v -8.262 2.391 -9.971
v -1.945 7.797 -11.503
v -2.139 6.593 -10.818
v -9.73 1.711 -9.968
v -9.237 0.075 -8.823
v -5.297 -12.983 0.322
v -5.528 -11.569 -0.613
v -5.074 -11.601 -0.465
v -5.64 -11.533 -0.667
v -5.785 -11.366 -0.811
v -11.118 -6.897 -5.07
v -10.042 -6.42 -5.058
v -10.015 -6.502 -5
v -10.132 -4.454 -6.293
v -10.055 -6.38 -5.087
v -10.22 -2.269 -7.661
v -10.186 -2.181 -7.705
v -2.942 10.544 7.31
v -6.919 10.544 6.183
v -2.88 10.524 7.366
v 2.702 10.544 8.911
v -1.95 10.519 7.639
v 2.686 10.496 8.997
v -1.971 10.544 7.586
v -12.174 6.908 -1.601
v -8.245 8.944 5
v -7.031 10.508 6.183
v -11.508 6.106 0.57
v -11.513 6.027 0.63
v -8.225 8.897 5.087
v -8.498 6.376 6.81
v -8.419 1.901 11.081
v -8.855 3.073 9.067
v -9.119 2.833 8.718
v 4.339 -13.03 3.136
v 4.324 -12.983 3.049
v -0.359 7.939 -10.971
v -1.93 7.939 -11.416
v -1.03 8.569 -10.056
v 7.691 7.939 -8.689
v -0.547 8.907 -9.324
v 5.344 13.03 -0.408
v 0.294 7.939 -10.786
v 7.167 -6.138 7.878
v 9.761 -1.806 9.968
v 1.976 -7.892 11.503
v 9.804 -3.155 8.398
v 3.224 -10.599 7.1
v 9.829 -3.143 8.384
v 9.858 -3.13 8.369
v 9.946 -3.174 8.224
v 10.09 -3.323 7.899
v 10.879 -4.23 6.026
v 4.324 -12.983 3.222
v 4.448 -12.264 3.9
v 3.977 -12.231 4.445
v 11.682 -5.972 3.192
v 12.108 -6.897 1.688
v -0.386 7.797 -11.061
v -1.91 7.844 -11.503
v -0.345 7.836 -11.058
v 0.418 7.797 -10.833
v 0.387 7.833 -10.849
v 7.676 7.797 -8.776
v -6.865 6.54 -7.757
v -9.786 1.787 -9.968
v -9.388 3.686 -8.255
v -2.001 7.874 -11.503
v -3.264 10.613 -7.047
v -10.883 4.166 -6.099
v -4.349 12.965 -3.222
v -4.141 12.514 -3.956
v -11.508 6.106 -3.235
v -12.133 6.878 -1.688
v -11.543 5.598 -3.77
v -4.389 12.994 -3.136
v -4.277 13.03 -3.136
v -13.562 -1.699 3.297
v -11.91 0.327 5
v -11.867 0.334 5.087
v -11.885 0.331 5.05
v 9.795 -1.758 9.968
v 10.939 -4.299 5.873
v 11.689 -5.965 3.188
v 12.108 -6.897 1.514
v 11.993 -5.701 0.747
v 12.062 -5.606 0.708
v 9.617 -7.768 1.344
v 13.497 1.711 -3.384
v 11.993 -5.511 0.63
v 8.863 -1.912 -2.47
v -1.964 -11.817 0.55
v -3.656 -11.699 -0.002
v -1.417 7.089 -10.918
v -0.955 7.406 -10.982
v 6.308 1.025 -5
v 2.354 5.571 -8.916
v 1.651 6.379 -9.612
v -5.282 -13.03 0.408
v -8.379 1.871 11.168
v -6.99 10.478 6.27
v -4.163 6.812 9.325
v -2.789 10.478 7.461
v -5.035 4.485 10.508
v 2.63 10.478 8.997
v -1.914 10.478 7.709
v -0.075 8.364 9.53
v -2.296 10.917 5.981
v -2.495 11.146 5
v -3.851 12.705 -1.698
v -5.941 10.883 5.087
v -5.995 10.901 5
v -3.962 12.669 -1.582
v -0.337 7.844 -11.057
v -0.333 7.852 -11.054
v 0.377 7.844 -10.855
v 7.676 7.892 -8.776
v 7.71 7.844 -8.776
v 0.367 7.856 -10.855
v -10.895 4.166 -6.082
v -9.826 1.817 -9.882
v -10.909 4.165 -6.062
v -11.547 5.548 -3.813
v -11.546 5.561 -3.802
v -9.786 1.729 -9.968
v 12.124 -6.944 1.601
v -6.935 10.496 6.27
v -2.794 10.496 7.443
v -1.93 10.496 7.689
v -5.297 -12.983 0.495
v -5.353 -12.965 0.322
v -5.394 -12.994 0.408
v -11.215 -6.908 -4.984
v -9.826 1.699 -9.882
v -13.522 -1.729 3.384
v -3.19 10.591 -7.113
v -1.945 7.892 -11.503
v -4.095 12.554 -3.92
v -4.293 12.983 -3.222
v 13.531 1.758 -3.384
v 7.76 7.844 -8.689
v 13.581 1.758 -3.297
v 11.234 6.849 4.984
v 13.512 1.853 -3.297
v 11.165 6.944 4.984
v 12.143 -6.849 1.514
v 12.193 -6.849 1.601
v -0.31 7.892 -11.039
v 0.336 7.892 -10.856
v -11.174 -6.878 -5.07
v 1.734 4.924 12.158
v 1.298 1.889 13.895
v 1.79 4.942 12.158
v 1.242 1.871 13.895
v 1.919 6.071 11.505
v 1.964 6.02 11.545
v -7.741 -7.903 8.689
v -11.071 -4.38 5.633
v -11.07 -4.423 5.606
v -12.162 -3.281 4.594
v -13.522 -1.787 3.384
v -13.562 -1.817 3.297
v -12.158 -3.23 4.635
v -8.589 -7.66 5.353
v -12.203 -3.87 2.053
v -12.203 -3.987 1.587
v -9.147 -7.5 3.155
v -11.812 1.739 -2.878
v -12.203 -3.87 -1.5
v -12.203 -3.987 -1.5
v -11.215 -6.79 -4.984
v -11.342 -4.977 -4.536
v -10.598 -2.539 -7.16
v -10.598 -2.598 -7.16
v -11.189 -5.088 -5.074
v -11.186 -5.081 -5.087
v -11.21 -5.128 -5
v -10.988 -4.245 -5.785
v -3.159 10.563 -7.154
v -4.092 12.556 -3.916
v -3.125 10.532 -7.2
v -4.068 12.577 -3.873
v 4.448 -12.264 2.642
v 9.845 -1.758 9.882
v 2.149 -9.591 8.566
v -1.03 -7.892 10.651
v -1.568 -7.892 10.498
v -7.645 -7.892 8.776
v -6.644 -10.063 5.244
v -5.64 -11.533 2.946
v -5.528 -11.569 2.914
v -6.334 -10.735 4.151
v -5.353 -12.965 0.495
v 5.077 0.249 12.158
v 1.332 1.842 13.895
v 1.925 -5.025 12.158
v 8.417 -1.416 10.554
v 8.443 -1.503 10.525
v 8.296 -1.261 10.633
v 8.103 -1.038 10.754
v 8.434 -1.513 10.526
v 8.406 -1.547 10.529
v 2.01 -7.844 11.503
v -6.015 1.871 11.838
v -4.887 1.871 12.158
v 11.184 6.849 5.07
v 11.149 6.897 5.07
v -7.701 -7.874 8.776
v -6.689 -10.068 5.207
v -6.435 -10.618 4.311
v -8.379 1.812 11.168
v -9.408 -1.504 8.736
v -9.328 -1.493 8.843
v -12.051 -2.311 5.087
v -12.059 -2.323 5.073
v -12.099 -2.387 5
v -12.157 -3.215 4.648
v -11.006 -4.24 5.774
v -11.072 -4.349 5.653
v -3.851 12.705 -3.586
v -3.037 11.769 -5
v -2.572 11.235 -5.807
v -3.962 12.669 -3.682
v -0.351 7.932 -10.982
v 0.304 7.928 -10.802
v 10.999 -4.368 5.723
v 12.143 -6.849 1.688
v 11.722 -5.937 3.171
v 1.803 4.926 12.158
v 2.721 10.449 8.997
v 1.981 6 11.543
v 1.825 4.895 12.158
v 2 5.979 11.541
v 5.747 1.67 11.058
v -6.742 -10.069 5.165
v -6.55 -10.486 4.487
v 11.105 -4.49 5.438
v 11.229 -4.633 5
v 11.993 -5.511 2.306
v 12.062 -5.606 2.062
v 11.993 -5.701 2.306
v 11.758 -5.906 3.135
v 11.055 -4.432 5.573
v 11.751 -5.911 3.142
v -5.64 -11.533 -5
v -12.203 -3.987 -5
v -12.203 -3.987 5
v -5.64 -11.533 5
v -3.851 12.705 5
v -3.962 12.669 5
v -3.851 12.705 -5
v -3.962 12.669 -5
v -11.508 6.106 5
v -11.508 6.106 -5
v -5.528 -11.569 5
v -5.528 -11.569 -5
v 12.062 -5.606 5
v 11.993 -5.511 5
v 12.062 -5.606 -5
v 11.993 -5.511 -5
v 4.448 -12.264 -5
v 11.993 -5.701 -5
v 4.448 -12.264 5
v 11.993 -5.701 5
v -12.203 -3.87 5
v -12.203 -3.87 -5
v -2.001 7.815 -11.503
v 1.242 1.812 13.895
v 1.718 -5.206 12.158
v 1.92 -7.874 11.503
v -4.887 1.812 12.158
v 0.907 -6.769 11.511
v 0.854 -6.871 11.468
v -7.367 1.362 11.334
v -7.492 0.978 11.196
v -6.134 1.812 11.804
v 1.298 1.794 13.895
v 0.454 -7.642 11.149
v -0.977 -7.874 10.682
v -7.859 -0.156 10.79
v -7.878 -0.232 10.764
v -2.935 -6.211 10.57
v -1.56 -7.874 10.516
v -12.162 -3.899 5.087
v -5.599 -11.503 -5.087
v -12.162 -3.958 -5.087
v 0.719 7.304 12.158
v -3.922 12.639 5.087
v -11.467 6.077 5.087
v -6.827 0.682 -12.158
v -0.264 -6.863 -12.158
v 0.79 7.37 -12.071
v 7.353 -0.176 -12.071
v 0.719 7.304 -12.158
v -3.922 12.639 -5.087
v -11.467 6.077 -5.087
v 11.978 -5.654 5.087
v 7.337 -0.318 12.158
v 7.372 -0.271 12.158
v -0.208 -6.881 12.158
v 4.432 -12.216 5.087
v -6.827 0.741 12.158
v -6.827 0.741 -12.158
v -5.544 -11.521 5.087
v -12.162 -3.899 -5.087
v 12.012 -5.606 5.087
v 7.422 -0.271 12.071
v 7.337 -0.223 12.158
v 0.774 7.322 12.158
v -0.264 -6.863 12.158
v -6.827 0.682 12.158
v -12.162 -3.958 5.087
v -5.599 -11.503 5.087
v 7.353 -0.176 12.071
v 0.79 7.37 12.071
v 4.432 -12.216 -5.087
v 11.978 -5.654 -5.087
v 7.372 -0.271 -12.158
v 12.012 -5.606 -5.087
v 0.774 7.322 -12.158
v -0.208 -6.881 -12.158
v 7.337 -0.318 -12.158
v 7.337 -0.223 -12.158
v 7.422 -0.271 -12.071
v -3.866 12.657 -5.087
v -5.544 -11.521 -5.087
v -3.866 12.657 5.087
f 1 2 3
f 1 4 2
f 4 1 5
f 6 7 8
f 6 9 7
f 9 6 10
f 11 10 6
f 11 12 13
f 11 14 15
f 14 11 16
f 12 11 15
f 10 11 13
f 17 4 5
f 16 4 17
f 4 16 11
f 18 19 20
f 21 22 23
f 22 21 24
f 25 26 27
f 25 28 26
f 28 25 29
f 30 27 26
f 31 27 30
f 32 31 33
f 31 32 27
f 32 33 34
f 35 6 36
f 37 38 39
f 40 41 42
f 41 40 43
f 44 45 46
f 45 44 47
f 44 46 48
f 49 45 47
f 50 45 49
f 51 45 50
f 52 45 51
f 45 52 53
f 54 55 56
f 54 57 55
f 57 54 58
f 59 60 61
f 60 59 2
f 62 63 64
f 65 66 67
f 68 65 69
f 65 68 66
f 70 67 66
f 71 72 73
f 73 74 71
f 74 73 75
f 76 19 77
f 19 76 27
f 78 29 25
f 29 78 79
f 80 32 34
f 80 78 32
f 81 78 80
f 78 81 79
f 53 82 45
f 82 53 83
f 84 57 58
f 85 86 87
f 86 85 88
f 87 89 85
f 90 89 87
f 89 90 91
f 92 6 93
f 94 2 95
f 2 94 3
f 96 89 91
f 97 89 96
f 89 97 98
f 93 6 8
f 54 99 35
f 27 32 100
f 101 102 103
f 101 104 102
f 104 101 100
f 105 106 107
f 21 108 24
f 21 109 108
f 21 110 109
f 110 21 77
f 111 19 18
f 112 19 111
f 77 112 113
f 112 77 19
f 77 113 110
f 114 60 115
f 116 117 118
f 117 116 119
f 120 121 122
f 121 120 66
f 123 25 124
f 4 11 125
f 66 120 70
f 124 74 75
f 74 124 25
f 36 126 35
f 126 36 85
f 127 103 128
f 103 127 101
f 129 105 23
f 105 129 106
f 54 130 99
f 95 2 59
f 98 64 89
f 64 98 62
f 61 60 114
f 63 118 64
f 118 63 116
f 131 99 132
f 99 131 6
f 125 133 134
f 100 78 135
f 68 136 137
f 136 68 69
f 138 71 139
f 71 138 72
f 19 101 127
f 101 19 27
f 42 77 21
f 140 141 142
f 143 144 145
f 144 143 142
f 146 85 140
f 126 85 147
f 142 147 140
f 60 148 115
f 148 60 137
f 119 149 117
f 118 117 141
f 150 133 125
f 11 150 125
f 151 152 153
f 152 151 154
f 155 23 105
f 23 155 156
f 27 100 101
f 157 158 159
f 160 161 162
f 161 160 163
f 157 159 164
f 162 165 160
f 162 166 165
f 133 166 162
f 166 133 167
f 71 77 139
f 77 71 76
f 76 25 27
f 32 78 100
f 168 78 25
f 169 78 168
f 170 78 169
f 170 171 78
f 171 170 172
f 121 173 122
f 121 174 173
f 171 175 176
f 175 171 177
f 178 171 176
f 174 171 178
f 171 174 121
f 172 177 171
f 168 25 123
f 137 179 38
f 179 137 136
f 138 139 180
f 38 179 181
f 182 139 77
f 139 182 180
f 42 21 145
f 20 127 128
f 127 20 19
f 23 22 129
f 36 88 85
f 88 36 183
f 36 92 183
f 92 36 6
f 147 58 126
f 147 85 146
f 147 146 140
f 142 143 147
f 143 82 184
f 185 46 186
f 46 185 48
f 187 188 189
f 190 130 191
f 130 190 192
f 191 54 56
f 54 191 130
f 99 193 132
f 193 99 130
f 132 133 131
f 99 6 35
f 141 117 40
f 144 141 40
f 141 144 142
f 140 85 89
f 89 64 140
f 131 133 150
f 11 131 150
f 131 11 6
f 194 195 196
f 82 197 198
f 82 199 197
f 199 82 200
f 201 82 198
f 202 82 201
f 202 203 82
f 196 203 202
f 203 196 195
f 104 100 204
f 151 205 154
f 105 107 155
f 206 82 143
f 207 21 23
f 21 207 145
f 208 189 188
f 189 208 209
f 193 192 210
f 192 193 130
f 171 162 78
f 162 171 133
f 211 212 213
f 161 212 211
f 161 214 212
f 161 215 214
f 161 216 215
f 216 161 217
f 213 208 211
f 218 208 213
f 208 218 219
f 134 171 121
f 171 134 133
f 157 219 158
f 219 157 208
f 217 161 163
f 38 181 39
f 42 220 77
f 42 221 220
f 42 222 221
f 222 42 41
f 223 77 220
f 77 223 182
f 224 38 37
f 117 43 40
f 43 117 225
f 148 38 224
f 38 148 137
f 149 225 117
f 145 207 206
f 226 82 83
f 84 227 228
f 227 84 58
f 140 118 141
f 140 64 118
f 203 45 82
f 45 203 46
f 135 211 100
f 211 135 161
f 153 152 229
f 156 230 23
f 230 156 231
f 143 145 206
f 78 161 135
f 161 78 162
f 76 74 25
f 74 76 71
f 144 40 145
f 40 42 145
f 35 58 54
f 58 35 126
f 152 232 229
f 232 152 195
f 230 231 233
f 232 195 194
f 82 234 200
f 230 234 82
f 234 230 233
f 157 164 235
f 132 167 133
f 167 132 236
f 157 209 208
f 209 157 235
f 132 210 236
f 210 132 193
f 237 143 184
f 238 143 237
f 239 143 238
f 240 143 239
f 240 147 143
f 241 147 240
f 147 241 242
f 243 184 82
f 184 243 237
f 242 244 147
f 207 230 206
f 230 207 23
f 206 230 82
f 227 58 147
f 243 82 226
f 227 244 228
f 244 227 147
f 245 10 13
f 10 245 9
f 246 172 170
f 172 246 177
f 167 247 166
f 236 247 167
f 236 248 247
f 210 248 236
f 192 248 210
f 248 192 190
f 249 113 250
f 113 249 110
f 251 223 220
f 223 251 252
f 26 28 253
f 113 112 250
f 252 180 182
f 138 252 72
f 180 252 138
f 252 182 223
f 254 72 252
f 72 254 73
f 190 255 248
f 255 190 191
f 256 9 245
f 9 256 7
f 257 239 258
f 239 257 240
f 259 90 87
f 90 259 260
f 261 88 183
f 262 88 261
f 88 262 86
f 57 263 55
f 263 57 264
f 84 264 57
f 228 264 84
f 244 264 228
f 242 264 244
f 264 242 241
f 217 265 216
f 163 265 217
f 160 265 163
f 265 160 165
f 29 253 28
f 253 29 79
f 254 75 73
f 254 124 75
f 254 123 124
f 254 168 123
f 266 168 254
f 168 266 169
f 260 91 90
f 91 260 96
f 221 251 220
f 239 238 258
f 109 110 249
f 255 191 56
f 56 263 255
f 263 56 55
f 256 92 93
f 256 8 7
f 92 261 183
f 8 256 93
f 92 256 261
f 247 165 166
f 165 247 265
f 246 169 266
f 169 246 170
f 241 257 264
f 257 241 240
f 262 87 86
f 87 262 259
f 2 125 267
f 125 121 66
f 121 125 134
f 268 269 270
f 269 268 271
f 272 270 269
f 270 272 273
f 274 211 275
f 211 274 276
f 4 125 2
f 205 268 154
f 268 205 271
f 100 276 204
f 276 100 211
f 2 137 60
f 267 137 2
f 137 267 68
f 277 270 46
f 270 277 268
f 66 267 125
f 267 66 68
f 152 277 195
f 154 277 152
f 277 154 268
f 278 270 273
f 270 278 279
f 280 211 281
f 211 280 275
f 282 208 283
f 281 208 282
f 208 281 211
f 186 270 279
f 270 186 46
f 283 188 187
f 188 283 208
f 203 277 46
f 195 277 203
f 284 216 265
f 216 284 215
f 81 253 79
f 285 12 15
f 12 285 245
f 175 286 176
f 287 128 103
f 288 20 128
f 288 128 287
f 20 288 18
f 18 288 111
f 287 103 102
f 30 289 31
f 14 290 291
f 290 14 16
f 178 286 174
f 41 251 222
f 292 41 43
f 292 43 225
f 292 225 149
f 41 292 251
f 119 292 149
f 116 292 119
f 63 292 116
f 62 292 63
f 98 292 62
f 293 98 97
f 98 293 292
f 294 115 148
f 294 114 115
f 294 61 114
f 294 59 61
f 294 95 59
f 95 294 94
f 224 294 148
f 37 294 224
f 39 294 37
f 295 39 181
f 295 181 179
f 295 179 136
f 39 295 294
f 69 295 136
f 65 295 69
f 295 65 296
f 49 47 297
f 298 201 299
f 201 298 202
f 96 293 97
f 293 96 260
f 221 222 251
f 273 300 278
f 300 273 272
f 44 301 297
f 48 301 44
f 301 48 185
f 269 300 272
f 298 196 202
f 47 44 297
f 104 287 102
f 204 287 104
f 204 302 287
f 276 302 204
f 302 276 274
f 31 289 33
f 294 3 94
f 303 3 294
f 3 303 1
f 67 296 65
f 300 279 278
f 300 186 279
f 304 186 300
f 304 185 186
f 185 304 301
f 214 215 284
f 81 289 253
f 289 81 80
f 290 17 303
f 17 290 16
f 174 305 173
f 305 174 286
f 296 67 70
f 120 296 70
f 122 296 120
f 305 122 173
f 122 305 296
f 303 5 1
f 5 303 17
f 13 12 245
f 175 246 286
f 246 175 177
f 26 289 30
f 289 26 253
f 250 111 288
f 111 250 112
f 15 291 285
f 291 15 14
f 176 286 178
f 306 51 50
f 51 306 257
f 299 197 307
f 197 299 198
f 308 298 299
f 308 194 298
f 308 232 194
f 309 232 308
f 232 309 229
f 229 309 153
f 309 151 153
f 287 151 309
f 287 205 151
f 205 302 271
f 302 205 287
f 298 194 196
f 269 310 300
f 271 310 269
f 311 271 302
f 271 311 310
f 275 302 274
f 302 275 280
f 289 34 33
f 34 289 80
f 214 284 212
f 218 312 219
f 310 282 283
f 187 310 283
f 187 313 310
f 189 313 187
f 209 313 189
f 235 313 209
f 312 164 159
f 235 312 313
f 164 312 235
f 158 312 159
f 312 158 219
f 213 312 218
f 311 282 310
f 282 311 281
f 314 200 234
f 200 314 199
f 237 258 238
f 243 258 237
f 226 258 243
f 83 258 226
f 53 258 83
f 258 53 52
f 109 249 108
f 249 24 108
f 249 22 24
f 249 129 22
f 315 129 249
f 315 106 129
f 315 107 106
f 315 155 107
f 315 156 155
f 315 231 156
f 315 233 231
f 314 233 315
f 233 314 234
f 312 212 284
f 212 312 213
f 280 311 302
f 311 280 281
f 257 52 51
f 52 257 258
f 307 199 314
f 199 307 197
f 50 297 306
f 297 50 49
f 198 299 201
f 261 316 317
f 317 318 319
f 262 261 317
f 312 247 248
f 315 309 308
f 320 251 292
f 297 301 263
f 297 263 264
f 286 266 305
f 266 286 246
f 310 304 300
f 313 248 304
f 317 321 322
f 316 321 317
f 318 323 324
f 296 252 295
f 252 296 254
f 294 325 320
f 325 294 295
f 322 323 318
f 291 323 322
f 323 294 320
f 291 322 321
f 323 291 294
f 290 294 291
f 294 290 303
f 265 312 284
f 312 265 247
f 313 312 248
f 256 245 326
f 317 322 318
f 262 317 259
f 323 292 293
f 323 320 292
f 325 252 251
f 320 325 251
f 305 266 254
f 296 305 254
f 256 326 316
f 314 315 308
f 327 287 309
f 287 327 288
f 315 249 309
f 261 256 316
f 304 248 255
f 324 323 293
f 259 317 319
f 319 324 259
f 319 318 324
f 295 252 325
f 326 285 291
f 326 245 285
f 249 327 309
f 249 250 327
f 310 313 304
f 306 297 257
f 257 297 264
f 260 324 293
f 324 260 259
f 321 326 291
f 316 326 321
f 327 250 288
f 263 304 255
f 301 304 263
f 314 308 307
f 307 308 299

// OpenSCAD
// Auto-generated OpenSCAD file

    inner_points = 10*[[-0.022364928152955727, -0.6833428365326427, -1.2071067811865261], [0.7321659228464581, -0.027078259635412338, -1.2071067811864415], [-0.6786295050501859, 0.07118801446677113, -1.2071067811866534], [0.07590134594922775, 0.7274525913640015, -1.2071067811865688], [-0.022364928153311443, -0.6833428365325447, 1.2071067811865688], [0.7321659228461023, -0.027078259635314305, 1.2071067811866534], [-0.6786295050505418, 0.07118801446686916, 1.2071067811864415], [0.07590134594887203, 0.7274525913640996, 1.2071067811865261], [0.4416842044234921, -1.2168767178887558, -0.4999999999998886], [1.1962150554229058, -0.5606121409915255, -0.49999999999980405], [-1.142678637626842, 0.6047218958229418, -0.500000000000196], [-0.38814778662742855, 1.2609864727201718, -0.5000000000001115], [0.4416842044233449, -1.2168767178887152, 0.5000000000001115], [1.1962150554227584, -0.5606121409914849, 0.500000000000196], [-1.1426786376269895, 0.6047218958229823, 0.49999999999980405], [-0.38814778662757576, 1.2609864727202125, 0.4999999999998886], [-0.5558988095092017, -1.147391969109166, -0.5000000000000384], [-1.212163386406432, -0.3928611181097522, -0.5000000000001656], [-0.5558988095093491, -1.1473919691091254, 0.49999999999996164], [-1.2121633864065793, -0.39286111810971164, 0.4999999999998343]];

    outer_points = 10*[[1.1133863022512445, 0.6849025719557661, 0.4983835772517235], [1.3481473042168641, 0.17580803999924655, -0.3296925240143803], [0.9745294777189386, -0.17580803999924655, 0.9881753950159978], [1.2092904796845583, -0.6849025719557661, 0.160099293749894], [-1.2092904796845583, 0.6849025719557661, -0.160099293749894], [-0.9745294777189386, 0.17580803999924655, -0.9881753950159978], [-1.3481473042168641, -0.17580803999924655, 0.3296925240143803], [-1.1133863022512445, -0.6849025719557661, -0.4983835772517235], [0.5312766255676197, 1.2935168823083785, -0.04081670608026772], [0.7660376275332393, 0.784422350351859, -0.8688928073463715], [0.19604659655366607, -0.784422350351859, 1.1416453431056148], [0.43080759851928574, -1.2935168823083785, 0.3135692418395109], [-0.43080759851928574, 1.2935168823083785, -0.3135692418395109], [-0.19604659655366607, 0.784422350351859, -1.1416453431056148], [-0.7660376275332393, -0.784422350351859, 0.8688928073463715], [-0.5312766255676197, -1.2935168823083785, 0.04081670608026772], [0.2670889268787577, 1.0448867677672125, 0.8910566361743166], [0.12823210234645194, 0.18417615581219987, 1.3808484539385908], [-0.6949952972081477, 1.0448867677672125, 0.6183041004150733], [-0.8338521217404535, 0.18417615581219987, 1.1080959181793475]];

    // Convex hull for inner set (I)
    module inner_hull() {
        hull() {
            for (p = inner_points) {
                translate(p) sphere(r=0.1);
            }
        }
    }

    // Convex hull for outer set (O) minus inner hull (O \ I)
    module outer_minus_inner() {
        difference() {
            hull() {
                for (p = outer_points) {
                    translate(p) sphere(r=0.1);
                }
            }
            inner_hull(); // Subtract inner hull
        }
    }

    // Convex hull for outer set (O) minus all translated inner hulls
    module outer_minus_AllTranslationInner() {
        difference() {
            hull() {
                for (p = outer_points) {
                    translate(p) sphere(r=0.1);
                }
            }
            hull() {
                translate([0,0,50]) inner_hull();
                translate([0,0,-50]) inner_hull();
            }; // Subtract translated inner hulls
        }
    }

    // Difference between outer_minus_inner and outer_minus_AllTranslationInner
    module outer_minus_inner_diff() {
        difference() {
            // Outer minus inner
            difference() {
                hull() {
                    for (p = outer_points) {
                        translate(p) sphere(r=0.1);
                    }
                }
                inner_hull();
            }

            // Subtract Outer minus AllTranslationInner
            difference() {
                hull() {
                    for (p = outer_points) {
                        translate(p) sphere(r=0.1);
                    }
                }
                hull() {
                    translate([0,0,50]) inner_hull();
                    translate([0,0,-50]) inner_hull();
                };
            }
        }
    }

    // Rendering all with colors applied
    color([1, 0, 0, 0.5]) inner_hull(); // Transparent red
    color([0, 1, 0, 1]) outer_minus_AllTranslationInner(); // Opaque green
    color([1, 1, 0, 1]) outer_minus_inner_diff(); // Opaque yellow
    
